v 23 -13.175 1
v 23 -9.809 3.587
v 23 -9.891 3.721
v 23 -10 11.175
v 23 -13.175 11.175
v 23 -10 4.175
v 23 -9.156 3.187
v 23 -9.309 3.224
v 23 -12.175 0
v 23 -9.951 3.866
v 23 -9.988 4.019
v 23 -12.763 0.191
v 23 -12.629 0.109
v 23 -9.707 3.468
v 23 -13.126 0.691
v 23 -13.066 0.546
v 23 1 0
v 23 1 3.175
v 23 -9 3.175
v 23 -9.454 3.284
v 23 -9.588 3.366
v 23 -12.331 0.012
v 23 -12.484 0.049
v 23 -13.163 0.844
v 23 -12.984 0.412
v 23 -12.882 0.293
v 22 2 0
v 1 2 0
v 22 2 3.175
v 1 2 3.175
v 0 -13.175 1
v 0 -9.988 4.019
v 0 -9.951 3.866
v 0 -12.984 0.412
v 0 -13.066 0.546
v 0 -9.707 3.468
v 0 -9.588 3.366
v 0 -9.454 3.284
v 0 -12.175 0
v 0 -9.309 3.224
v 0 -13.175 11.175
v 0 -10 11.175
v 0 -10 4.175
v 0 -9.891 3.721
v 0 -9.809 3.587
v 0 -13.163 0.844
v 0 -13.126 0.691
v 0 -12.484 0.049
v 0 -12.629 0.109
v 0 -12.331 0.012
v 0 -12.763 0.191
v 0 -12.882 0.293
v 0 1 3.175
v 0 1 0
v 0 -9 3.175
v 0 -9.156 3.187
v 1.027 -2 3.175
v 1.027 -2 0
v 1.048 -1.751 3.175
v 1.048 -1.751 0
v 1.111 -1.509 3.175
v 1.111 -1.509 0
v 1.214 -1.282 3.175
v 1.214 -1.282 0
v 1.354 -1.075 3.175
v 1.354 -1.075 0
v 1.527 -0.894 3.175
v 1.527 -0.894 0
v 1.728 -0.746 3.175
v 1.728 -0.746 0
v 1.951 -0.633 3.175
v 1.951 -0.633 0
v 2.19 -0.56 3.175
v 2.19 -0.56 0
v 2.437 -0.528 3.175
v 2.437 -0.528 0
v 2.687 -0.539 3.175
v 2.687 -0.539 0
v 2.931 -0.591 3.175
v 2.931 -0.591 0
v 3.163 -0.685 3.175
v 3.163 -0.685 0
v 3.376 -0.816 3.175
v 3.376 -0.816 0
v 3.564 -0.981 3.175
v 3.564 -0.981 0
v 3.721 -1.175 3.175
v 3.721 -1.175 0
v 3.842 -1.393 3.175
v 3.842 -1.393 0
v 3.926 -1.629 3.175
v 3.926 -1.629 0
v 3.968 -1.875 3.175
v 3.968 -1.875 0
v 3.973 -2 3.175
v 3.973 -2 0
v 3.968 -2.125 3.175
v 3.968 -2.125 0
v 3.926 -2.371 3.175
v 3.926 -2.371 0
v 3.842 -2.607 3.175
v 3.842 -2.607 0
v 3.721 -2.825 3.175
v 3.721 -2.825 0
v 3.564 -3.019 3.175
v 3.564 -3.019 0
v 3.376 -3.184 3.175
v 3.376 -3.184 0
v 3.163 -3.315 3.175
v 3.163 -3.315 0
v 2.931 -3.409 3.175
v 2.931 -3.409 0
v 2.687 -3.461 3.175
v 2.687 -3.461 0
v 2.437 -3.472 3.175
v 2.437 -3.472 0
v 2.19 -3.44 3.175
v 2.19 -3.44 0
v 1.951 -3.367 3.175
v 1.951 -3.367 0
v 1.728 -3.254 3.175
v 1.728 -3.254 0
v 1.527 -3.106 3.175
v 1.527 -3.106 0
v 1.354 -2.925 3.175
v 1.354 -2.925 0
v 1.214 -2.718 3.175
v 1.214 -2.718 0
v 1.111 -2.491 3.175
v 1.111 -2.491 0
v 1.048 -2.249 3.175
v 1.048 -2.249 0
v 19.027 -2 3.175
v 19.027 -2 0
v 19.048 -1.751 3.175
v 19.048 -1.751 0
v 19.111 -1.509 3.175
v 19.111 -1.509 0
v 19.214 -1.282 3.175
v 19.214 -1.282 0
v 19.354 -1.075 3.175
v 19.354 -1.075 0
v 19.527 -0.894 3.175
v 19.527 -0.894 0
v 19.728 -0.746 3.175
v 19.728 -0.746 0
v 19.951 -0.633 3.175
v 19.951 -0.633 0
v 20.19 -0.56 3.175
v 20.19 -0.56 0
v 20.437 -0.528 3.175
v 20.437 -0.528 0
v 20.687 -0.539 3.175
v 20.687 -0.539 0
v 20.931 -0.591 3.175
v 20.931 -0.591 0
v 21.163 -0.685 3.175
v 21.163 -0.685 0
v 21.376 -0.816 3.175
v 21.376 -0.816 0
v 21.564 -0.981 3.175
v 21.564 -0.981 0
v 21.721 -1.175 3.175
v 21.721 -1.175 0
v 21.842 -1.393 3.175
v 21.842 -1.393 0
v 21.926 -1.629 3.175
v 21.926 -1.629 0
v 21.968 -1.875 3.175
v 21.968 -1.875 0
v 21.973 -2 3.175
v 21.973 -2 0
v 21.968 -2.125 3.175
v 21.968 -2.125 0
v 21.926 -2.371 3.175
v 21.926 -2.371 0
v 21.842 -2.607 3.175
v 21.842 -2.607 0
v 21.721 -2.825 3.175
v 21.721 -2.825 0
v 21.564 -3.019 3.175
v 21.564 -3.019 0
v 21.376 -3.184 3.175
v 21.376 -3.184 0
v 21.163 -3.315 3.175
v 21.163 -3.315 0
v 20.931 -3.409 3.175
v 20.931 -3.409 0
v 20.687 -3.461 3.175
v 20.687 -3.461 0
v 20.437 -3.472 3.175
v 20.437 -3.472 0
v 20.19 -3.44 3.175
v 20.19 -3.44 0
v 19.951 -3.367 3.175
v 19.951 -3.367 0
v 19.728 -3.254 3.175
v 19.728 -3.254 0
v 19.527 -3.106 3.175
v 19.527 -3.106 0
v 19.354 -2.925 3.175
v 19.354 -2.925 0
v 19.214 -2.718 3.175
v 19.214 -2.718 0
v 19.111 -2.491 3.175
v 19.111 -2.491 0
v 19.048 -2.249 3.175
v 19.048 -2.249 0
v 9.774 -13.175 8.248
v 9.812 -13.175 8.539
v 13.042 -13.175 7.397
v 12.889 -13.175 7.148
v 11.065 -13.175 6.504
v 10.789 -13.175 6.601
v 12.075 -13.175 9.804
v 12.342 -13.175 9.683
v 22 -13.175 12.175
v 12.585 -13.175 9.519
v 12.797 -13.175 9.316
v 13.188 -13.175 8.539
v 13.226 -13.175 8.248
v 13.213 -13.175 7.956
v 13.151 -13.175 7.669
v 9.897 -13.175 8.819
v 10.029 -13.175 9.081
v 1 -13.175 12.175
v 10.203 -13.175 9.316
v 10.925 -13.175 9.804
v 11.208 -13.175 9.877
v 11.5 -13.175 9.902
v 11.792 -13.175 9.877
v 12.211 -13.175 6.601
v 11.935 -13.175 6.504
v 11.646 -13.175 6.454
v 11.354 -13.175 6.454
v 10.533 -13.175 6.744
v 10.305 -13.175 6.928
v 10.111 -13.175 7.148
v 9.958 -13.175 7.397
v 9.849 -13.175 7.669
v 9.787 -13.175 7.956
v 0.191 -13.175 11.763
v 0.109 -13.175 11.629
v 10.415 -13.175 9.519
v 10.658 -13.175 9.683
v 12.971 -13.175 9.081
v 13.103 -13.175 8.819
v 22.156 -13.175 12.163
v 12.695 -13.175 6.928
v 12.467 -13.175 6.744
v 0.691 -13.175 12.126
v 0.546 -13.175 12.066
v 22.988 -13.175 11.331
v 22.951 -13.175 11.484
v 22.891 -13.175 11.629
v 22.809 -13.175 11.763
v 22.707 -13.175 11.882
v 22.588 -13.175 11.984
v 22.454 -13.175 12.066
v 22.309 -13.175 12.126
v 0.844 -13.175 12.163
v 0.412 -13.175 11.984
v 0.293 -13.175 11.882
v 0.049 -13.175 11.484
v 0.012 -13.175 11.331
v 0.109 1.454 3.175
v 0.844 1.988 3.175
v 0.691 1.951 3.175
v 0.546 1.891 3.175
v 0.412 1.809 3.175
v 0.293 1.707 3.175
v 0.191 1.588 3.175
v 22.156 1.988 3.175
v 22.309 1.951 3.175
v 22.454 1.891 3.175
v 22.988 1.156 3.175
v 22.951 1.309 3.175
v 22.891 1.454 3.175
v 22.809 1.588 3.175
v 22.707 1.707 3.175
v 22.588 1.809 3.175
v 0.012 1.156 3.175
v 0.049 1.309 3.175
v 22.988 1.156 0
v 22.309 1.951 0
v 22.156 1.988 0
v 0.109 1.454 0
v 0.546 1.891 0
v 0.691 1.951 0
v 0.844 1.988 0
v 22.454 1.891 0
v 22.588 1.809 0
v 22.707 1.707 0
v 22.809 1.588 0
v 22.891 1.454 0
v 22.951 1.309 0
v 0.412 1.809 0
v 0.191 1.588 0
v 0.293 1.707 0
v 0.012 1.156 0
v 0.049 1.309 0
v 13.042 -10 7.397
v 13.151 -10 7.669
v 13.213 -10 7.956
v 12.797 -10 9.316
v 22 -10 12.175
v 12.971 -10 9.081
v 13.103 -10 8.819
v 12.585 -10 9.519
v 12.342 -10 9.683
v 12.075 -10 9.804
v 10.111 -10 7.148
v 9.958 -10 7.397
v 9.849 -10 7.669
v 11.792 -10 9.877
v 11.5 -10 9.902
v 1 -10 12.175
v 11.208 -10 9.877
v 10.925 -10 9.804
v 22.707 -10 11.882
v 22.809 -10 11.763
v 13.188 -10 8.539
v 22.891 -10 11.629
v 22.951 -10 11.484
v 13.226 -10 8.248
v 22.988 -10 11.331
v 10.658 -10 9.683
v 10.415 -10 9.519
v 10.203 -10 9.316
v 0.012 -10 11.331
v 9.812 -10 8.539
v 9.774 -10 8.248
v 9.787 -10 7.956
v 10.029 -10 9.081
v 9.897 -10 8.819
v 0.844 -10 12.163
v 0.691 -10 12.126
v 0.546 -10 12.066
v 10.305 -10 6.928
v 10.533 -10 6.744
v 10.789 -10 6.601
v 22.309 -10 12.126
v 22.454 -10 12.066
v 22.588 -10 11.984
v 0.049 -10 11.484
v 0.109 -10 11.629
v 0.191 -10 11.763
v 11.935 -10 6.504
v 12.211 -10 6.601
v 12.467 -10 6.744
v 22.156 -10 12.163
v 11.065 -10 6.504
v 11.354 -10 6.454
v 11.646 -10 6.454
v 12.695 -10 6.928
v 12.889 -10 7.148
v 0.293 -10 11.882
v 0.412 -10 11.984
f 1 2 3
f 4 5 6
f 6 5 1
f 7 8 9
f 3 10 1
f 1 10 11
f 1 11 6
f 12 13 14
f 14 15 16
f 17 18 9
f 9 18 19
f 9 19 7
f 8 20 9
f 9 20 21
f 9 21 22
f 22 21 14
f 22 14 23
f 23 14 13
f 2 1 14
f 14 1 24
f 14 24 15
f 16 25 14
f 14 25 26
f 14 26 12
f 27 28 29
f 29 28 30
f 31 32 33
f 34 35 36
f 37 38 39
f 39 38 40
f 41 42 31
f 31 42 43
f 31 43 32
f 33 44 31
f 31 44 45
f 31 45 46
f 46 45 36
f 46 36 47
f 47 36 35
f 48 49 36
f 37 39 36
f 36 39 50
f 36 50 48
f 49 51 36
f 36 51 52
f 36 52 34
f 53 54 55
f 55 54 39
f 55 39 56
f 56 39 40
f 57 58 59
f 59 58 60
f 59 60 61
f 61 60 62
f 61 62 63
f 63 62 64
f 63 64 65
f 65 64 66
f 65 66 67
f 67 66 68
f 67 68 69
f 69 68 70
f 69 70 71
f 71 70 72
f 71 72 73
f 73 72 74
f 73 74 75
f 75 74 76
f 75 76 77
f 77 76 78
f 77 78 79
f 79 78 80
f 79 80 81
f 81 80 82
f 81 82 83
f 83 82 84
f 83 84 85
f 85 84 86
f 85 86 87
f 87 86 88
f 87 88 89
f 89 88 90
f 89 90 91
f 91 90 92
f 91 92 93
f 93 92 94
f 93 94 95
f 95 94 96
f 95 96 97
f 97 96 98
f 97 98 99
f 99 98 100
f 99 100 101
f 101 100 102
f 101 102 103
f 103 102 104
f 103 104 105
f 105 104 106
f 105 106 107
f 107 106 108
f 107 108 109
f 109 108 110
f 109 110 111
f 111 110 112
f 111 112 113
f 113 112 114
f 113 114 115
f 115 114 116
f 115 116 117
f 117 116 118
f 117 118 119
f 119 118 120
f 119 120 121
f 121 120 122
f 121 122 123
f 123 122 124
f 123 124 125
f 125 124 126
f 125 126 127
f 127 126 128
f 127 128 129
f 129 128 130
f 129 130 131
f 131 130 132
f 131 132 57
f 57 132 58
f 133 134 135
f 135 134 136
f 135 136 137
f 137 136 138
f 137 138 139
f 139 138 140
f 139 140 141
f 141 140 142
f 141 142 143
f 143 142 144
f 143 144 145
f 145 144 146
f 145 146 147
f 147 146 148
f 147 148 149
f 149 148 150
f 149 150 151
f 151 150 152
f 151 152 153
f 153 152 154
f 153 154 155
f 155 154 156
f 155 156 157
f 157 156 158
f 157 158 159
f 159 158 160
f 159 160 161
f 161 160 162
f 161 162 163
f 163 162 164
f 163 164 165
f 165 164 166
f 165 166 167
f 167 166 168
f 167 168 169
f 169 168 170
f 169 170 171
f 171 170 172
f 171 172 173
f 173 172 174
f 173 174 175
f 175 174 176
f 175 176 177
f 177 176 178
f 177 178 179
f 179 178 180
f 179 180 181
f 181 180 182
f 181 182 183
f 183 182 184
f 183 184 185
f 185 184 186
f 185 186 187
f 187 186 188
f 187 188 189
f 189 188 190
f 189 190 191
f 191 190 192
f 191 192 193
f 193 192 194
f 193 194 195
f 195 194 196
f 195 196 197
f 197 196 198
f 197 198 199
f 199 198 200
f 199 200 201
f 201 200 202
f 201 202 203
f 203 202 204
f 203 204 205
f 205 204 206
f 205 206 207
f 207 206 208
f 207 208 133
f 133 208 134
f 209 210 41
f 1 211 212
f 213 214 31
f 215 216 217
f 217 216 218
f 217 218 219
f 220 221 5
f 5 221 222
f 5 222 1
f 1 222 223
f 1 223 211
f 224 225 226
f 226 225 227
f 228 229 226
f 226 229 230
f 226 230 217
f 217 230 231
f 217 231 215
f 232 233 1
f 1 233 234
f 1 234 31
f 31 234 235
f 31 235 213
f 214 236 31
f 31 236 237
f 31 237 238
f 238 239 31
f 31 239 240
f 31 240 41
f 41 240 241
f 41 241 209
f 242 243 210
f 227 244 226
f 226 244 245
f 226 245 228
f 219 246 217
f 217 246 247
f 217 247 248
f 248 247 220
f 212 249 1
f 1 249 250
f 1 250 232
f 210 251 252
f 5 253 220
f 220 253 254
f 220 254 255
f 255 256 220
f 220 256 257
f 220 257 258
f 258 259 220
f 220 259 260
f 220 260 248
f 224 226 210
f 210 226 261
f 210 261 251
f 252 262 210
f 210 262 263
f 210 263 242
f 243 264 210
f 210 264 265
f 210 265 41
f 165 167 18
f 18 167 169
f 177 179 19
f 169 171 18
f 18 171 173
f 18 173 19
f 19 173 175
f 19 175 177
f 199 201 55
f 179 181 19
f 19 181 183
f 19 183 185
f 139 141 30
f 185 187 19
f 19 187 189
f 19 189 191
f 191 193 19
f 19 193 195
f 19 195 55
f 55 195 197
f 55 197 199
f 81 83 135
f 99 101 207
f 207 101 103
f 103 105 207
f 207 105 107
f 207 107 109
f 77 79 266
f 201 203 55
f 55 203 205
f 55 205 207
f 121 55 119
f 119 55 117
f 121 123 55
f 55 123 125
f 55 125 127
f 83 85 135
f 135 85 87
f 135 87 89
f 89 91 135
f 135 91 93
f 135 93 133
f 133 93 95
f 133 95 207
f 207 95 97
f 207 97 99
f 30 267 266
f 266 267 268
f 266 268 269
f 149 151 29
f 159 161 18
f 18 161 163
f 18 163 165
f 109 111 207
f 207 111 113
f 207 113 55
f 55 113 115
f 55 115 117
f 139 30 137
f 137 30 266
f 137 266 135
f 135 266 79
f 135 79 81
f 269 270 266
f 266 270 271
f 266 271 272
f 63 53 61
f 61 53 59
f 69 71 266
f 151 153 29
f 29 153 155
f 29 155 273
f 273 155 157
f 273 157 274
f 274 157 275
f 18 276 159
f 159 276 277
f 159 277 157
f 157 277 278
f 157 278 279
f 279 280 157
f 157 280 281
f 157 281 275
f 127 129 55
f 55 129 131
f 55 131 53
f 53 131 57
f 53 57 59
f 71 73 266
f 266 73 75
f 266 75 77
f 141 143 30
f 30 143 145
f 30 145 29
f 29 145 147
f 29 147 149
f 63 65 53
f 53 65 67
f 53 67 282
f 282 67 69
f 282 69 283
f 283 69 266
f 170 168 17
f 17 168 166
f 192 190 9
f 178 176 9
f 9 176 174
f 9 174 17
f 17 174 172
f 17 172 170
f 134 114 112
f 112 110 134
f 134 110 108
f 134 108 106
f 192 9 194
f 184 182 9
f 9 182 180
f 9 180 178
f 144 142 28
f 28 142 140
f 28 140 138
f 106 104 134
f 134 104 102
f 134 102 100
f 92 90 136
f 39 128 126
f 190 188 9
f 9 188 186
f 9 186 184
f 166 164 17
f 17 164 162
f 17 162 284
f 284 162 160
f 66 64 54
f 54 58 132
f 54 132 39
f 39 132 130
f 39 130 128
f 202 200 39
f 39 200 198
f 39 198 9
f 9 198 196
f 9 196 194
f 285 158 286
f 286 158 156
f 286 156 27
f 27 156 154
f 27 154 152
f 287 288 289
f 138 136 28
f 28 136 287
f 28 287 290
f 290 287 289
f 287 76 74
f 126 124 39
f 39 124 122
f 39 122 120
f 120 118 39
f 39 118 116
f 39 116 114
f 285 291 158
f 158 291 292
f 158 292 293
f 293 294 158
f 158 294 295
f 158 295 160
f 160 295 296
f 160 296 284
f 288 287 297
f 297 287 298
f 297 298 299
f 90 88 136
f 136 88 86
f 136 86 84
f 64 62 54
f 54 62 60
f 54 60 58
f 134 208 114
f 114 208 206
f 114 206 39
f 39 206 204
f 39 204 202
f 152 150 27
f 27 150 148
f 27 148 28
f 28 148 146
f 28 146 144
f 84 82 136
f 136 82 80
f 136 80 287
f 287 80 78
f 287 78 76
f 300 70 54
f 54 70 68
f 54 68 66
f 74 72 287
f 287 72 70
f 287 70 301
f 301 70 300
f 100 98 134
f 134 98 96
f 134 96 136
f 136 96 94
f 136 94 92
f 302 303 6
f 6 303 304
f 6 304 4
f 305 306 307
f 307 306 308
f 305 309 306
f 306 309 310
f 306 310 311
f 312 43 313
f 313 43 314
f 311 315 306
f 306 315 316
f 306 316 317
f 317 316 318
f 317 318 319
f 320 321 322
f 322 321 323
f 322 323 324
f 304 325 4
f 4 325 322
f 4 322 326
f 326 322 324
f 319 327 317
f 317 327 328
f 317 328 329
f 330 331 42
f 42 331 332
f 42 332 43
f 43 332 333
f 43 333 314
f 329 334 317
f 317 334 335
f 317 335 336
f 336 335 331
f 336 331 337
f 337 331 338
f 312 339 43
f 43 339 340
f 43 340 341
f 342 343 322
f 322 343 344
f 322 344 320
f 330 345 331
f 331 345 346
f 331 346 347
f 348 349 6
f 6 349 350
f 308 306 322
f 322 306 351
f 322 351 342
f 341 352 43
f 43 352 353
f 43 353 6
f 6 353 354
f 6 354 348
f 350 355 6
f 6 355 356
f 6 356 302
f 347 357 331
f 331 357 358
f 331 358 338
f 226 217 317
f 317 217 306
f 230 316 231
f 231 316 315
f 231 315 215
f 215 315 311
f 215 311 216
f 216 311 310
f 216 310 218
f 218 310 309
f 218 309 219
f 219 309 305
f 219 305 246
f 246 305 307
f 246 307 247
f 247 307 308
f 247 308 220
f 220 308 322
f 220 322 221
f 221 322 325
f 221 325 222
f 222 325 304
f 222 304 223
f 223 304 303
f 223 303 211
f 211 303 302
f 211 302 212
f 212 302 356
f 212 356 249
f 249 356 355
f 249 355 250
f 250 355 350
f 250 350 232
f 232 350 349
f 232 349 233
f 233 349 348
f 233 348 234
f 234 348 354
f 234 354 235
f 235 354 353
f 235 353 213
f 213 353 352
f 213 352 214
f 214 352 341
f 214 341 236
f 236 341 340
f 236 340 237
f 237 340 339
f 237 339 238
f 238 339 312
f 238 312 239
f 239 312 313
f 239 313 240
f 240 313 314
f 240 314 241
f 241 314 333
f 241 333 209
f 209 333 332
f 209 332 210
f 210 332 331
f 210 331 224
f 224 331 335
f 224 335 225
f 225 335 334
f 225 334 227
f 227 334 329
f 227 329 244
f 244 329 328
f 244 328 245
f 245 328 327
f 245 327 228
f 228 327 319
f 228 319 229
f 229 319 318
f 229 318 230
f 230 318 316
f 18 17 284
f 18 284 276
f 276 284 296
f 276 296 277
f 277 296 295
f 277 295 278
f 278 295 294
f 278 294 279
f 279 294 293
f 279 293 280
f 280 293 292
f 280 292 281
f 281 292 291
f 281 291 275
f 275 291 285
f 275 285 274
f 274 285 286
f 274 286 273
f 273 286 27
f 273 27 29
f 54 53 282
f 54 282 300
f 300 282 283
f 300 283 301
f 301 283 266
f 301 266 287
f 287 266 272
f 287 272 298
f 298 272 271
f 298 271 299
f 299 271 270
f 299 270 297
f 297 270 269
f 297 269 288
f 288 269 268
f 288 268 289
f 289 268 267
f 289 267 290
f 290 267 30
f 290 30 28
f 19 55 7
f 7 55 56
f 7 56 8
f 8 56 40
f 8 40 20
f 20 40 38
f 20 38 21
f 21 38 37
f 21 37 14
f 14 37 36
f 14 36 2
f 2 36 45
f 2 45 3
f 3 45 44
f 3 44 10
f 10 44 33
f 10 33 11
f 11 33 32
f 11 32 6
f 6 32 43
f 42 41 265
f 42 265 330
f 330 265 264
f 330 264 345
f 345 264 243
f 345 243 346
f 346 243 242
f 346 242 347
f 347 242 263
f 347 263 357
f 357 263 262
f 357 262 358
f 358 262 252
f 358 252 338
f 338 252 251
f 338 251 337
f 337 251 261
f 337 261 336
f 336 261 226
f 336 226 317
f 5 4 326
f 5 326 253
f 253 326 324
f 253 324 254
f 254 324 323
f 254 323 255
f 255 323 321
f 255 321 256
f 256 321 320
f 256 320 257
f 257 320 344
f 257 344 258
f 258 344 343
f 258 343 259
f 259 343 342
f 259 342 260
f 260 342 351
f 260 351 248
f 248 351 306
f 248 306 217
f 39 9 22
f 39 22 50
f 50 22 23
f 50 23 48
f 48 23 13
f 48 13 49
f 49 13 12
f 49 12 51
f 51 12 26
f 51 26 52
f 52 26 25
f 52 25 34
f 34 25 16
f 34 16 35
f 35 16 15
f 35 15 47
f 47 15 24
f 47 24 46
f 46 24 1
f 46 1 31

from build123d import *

# Parameters (mm, degrees)
SKETCH1_W             = 23
SKETCH1_H             = 10
SKETCH1_R             = 1.4732
SKETCH1_H_2           = 3.175
SKETCH1_H_3           = 2
BOSS_EXTRUDE1_DEPTH   = 3.175
BOSS_EXTRUDE2_START   = 3.175
SKETCH1_3_W           = 23
SKETCH1_3_H           = 3.175
BOSS_EXTRUDE2_DEPTH   = 9
F_8_32_TAPPED_HOLE1_D = 3.4544
FILLET1_R             = 1


with BuildPart() as part:
    # Sketch1 → Boss-Extrude1 (new body)
    # profile 1 of 3: a face of its own
    with BuildSketch(Plane.XY):
        with Locations((11.5, -5)):
            Rectangle(SKETCH1_W, SKETCH1_H)
        with Locations((2.5, -2)):
            Circle(SKETCH1_R, mode=Mode.SUBTRACT)
        with Locations((20.5, -2)):
            Circle(SKETCH1_R, mode=Mode.SUBTRACT)
    # profile 2 of 3: a face of its own
    with BuildSketch(Plane.XY):
        with Locations((11.5, -11.5875)):
            Rectangle(SKETCH1_W, SKETCH1_H_2)
    # profile 3 of 3: a face of its own
    with BuildSketch(Plane.XY):
        with Locations((11.5, 1)):
            Rectangle(SKETCH1_W, SKETCH1_H_3)
    extrude(amount=BOSS_EXTRUDE1_DEPTH)

    # Sketch1<3> → Boss-Extrude2 (add)
    with BuildSketch(Plane.XY.offset(BOSS_EXTRUDE2_START)):
        with Locations((11.5, -11.5875)):
            Rectangle(SKETCH1_3_W, SKETCH1_3_H)
    extrude(amount=BOSS_EXTRUDE2_DEPTH)

    # #8-32 Tapped Hole1 (through all)
    with Locations(Plane(origin=(11.5, -10, 8.175), x_dir=(1, 0, 0), z_dir=(0, 1, 0))):
        with Locations((0, 0)):
            Hole(F_8_32_TAPPED_HOLE1_D / 2)

    # Fillet1
    fillet1_edges = [part.edges().sort_by_distance(p)[0] for p in [
        (0, 2, 1.5875),
        (23, 2, 1.5875),
        (0, -11.5875, 12.175),
        (11.5, -10, 3.175),
        (23, -11.5875, 12.175),
        (11.5, -13.175, 0),
    ]]
    fillet(fillet1_edges, radius=FILLET1_R)


solid = part.part
